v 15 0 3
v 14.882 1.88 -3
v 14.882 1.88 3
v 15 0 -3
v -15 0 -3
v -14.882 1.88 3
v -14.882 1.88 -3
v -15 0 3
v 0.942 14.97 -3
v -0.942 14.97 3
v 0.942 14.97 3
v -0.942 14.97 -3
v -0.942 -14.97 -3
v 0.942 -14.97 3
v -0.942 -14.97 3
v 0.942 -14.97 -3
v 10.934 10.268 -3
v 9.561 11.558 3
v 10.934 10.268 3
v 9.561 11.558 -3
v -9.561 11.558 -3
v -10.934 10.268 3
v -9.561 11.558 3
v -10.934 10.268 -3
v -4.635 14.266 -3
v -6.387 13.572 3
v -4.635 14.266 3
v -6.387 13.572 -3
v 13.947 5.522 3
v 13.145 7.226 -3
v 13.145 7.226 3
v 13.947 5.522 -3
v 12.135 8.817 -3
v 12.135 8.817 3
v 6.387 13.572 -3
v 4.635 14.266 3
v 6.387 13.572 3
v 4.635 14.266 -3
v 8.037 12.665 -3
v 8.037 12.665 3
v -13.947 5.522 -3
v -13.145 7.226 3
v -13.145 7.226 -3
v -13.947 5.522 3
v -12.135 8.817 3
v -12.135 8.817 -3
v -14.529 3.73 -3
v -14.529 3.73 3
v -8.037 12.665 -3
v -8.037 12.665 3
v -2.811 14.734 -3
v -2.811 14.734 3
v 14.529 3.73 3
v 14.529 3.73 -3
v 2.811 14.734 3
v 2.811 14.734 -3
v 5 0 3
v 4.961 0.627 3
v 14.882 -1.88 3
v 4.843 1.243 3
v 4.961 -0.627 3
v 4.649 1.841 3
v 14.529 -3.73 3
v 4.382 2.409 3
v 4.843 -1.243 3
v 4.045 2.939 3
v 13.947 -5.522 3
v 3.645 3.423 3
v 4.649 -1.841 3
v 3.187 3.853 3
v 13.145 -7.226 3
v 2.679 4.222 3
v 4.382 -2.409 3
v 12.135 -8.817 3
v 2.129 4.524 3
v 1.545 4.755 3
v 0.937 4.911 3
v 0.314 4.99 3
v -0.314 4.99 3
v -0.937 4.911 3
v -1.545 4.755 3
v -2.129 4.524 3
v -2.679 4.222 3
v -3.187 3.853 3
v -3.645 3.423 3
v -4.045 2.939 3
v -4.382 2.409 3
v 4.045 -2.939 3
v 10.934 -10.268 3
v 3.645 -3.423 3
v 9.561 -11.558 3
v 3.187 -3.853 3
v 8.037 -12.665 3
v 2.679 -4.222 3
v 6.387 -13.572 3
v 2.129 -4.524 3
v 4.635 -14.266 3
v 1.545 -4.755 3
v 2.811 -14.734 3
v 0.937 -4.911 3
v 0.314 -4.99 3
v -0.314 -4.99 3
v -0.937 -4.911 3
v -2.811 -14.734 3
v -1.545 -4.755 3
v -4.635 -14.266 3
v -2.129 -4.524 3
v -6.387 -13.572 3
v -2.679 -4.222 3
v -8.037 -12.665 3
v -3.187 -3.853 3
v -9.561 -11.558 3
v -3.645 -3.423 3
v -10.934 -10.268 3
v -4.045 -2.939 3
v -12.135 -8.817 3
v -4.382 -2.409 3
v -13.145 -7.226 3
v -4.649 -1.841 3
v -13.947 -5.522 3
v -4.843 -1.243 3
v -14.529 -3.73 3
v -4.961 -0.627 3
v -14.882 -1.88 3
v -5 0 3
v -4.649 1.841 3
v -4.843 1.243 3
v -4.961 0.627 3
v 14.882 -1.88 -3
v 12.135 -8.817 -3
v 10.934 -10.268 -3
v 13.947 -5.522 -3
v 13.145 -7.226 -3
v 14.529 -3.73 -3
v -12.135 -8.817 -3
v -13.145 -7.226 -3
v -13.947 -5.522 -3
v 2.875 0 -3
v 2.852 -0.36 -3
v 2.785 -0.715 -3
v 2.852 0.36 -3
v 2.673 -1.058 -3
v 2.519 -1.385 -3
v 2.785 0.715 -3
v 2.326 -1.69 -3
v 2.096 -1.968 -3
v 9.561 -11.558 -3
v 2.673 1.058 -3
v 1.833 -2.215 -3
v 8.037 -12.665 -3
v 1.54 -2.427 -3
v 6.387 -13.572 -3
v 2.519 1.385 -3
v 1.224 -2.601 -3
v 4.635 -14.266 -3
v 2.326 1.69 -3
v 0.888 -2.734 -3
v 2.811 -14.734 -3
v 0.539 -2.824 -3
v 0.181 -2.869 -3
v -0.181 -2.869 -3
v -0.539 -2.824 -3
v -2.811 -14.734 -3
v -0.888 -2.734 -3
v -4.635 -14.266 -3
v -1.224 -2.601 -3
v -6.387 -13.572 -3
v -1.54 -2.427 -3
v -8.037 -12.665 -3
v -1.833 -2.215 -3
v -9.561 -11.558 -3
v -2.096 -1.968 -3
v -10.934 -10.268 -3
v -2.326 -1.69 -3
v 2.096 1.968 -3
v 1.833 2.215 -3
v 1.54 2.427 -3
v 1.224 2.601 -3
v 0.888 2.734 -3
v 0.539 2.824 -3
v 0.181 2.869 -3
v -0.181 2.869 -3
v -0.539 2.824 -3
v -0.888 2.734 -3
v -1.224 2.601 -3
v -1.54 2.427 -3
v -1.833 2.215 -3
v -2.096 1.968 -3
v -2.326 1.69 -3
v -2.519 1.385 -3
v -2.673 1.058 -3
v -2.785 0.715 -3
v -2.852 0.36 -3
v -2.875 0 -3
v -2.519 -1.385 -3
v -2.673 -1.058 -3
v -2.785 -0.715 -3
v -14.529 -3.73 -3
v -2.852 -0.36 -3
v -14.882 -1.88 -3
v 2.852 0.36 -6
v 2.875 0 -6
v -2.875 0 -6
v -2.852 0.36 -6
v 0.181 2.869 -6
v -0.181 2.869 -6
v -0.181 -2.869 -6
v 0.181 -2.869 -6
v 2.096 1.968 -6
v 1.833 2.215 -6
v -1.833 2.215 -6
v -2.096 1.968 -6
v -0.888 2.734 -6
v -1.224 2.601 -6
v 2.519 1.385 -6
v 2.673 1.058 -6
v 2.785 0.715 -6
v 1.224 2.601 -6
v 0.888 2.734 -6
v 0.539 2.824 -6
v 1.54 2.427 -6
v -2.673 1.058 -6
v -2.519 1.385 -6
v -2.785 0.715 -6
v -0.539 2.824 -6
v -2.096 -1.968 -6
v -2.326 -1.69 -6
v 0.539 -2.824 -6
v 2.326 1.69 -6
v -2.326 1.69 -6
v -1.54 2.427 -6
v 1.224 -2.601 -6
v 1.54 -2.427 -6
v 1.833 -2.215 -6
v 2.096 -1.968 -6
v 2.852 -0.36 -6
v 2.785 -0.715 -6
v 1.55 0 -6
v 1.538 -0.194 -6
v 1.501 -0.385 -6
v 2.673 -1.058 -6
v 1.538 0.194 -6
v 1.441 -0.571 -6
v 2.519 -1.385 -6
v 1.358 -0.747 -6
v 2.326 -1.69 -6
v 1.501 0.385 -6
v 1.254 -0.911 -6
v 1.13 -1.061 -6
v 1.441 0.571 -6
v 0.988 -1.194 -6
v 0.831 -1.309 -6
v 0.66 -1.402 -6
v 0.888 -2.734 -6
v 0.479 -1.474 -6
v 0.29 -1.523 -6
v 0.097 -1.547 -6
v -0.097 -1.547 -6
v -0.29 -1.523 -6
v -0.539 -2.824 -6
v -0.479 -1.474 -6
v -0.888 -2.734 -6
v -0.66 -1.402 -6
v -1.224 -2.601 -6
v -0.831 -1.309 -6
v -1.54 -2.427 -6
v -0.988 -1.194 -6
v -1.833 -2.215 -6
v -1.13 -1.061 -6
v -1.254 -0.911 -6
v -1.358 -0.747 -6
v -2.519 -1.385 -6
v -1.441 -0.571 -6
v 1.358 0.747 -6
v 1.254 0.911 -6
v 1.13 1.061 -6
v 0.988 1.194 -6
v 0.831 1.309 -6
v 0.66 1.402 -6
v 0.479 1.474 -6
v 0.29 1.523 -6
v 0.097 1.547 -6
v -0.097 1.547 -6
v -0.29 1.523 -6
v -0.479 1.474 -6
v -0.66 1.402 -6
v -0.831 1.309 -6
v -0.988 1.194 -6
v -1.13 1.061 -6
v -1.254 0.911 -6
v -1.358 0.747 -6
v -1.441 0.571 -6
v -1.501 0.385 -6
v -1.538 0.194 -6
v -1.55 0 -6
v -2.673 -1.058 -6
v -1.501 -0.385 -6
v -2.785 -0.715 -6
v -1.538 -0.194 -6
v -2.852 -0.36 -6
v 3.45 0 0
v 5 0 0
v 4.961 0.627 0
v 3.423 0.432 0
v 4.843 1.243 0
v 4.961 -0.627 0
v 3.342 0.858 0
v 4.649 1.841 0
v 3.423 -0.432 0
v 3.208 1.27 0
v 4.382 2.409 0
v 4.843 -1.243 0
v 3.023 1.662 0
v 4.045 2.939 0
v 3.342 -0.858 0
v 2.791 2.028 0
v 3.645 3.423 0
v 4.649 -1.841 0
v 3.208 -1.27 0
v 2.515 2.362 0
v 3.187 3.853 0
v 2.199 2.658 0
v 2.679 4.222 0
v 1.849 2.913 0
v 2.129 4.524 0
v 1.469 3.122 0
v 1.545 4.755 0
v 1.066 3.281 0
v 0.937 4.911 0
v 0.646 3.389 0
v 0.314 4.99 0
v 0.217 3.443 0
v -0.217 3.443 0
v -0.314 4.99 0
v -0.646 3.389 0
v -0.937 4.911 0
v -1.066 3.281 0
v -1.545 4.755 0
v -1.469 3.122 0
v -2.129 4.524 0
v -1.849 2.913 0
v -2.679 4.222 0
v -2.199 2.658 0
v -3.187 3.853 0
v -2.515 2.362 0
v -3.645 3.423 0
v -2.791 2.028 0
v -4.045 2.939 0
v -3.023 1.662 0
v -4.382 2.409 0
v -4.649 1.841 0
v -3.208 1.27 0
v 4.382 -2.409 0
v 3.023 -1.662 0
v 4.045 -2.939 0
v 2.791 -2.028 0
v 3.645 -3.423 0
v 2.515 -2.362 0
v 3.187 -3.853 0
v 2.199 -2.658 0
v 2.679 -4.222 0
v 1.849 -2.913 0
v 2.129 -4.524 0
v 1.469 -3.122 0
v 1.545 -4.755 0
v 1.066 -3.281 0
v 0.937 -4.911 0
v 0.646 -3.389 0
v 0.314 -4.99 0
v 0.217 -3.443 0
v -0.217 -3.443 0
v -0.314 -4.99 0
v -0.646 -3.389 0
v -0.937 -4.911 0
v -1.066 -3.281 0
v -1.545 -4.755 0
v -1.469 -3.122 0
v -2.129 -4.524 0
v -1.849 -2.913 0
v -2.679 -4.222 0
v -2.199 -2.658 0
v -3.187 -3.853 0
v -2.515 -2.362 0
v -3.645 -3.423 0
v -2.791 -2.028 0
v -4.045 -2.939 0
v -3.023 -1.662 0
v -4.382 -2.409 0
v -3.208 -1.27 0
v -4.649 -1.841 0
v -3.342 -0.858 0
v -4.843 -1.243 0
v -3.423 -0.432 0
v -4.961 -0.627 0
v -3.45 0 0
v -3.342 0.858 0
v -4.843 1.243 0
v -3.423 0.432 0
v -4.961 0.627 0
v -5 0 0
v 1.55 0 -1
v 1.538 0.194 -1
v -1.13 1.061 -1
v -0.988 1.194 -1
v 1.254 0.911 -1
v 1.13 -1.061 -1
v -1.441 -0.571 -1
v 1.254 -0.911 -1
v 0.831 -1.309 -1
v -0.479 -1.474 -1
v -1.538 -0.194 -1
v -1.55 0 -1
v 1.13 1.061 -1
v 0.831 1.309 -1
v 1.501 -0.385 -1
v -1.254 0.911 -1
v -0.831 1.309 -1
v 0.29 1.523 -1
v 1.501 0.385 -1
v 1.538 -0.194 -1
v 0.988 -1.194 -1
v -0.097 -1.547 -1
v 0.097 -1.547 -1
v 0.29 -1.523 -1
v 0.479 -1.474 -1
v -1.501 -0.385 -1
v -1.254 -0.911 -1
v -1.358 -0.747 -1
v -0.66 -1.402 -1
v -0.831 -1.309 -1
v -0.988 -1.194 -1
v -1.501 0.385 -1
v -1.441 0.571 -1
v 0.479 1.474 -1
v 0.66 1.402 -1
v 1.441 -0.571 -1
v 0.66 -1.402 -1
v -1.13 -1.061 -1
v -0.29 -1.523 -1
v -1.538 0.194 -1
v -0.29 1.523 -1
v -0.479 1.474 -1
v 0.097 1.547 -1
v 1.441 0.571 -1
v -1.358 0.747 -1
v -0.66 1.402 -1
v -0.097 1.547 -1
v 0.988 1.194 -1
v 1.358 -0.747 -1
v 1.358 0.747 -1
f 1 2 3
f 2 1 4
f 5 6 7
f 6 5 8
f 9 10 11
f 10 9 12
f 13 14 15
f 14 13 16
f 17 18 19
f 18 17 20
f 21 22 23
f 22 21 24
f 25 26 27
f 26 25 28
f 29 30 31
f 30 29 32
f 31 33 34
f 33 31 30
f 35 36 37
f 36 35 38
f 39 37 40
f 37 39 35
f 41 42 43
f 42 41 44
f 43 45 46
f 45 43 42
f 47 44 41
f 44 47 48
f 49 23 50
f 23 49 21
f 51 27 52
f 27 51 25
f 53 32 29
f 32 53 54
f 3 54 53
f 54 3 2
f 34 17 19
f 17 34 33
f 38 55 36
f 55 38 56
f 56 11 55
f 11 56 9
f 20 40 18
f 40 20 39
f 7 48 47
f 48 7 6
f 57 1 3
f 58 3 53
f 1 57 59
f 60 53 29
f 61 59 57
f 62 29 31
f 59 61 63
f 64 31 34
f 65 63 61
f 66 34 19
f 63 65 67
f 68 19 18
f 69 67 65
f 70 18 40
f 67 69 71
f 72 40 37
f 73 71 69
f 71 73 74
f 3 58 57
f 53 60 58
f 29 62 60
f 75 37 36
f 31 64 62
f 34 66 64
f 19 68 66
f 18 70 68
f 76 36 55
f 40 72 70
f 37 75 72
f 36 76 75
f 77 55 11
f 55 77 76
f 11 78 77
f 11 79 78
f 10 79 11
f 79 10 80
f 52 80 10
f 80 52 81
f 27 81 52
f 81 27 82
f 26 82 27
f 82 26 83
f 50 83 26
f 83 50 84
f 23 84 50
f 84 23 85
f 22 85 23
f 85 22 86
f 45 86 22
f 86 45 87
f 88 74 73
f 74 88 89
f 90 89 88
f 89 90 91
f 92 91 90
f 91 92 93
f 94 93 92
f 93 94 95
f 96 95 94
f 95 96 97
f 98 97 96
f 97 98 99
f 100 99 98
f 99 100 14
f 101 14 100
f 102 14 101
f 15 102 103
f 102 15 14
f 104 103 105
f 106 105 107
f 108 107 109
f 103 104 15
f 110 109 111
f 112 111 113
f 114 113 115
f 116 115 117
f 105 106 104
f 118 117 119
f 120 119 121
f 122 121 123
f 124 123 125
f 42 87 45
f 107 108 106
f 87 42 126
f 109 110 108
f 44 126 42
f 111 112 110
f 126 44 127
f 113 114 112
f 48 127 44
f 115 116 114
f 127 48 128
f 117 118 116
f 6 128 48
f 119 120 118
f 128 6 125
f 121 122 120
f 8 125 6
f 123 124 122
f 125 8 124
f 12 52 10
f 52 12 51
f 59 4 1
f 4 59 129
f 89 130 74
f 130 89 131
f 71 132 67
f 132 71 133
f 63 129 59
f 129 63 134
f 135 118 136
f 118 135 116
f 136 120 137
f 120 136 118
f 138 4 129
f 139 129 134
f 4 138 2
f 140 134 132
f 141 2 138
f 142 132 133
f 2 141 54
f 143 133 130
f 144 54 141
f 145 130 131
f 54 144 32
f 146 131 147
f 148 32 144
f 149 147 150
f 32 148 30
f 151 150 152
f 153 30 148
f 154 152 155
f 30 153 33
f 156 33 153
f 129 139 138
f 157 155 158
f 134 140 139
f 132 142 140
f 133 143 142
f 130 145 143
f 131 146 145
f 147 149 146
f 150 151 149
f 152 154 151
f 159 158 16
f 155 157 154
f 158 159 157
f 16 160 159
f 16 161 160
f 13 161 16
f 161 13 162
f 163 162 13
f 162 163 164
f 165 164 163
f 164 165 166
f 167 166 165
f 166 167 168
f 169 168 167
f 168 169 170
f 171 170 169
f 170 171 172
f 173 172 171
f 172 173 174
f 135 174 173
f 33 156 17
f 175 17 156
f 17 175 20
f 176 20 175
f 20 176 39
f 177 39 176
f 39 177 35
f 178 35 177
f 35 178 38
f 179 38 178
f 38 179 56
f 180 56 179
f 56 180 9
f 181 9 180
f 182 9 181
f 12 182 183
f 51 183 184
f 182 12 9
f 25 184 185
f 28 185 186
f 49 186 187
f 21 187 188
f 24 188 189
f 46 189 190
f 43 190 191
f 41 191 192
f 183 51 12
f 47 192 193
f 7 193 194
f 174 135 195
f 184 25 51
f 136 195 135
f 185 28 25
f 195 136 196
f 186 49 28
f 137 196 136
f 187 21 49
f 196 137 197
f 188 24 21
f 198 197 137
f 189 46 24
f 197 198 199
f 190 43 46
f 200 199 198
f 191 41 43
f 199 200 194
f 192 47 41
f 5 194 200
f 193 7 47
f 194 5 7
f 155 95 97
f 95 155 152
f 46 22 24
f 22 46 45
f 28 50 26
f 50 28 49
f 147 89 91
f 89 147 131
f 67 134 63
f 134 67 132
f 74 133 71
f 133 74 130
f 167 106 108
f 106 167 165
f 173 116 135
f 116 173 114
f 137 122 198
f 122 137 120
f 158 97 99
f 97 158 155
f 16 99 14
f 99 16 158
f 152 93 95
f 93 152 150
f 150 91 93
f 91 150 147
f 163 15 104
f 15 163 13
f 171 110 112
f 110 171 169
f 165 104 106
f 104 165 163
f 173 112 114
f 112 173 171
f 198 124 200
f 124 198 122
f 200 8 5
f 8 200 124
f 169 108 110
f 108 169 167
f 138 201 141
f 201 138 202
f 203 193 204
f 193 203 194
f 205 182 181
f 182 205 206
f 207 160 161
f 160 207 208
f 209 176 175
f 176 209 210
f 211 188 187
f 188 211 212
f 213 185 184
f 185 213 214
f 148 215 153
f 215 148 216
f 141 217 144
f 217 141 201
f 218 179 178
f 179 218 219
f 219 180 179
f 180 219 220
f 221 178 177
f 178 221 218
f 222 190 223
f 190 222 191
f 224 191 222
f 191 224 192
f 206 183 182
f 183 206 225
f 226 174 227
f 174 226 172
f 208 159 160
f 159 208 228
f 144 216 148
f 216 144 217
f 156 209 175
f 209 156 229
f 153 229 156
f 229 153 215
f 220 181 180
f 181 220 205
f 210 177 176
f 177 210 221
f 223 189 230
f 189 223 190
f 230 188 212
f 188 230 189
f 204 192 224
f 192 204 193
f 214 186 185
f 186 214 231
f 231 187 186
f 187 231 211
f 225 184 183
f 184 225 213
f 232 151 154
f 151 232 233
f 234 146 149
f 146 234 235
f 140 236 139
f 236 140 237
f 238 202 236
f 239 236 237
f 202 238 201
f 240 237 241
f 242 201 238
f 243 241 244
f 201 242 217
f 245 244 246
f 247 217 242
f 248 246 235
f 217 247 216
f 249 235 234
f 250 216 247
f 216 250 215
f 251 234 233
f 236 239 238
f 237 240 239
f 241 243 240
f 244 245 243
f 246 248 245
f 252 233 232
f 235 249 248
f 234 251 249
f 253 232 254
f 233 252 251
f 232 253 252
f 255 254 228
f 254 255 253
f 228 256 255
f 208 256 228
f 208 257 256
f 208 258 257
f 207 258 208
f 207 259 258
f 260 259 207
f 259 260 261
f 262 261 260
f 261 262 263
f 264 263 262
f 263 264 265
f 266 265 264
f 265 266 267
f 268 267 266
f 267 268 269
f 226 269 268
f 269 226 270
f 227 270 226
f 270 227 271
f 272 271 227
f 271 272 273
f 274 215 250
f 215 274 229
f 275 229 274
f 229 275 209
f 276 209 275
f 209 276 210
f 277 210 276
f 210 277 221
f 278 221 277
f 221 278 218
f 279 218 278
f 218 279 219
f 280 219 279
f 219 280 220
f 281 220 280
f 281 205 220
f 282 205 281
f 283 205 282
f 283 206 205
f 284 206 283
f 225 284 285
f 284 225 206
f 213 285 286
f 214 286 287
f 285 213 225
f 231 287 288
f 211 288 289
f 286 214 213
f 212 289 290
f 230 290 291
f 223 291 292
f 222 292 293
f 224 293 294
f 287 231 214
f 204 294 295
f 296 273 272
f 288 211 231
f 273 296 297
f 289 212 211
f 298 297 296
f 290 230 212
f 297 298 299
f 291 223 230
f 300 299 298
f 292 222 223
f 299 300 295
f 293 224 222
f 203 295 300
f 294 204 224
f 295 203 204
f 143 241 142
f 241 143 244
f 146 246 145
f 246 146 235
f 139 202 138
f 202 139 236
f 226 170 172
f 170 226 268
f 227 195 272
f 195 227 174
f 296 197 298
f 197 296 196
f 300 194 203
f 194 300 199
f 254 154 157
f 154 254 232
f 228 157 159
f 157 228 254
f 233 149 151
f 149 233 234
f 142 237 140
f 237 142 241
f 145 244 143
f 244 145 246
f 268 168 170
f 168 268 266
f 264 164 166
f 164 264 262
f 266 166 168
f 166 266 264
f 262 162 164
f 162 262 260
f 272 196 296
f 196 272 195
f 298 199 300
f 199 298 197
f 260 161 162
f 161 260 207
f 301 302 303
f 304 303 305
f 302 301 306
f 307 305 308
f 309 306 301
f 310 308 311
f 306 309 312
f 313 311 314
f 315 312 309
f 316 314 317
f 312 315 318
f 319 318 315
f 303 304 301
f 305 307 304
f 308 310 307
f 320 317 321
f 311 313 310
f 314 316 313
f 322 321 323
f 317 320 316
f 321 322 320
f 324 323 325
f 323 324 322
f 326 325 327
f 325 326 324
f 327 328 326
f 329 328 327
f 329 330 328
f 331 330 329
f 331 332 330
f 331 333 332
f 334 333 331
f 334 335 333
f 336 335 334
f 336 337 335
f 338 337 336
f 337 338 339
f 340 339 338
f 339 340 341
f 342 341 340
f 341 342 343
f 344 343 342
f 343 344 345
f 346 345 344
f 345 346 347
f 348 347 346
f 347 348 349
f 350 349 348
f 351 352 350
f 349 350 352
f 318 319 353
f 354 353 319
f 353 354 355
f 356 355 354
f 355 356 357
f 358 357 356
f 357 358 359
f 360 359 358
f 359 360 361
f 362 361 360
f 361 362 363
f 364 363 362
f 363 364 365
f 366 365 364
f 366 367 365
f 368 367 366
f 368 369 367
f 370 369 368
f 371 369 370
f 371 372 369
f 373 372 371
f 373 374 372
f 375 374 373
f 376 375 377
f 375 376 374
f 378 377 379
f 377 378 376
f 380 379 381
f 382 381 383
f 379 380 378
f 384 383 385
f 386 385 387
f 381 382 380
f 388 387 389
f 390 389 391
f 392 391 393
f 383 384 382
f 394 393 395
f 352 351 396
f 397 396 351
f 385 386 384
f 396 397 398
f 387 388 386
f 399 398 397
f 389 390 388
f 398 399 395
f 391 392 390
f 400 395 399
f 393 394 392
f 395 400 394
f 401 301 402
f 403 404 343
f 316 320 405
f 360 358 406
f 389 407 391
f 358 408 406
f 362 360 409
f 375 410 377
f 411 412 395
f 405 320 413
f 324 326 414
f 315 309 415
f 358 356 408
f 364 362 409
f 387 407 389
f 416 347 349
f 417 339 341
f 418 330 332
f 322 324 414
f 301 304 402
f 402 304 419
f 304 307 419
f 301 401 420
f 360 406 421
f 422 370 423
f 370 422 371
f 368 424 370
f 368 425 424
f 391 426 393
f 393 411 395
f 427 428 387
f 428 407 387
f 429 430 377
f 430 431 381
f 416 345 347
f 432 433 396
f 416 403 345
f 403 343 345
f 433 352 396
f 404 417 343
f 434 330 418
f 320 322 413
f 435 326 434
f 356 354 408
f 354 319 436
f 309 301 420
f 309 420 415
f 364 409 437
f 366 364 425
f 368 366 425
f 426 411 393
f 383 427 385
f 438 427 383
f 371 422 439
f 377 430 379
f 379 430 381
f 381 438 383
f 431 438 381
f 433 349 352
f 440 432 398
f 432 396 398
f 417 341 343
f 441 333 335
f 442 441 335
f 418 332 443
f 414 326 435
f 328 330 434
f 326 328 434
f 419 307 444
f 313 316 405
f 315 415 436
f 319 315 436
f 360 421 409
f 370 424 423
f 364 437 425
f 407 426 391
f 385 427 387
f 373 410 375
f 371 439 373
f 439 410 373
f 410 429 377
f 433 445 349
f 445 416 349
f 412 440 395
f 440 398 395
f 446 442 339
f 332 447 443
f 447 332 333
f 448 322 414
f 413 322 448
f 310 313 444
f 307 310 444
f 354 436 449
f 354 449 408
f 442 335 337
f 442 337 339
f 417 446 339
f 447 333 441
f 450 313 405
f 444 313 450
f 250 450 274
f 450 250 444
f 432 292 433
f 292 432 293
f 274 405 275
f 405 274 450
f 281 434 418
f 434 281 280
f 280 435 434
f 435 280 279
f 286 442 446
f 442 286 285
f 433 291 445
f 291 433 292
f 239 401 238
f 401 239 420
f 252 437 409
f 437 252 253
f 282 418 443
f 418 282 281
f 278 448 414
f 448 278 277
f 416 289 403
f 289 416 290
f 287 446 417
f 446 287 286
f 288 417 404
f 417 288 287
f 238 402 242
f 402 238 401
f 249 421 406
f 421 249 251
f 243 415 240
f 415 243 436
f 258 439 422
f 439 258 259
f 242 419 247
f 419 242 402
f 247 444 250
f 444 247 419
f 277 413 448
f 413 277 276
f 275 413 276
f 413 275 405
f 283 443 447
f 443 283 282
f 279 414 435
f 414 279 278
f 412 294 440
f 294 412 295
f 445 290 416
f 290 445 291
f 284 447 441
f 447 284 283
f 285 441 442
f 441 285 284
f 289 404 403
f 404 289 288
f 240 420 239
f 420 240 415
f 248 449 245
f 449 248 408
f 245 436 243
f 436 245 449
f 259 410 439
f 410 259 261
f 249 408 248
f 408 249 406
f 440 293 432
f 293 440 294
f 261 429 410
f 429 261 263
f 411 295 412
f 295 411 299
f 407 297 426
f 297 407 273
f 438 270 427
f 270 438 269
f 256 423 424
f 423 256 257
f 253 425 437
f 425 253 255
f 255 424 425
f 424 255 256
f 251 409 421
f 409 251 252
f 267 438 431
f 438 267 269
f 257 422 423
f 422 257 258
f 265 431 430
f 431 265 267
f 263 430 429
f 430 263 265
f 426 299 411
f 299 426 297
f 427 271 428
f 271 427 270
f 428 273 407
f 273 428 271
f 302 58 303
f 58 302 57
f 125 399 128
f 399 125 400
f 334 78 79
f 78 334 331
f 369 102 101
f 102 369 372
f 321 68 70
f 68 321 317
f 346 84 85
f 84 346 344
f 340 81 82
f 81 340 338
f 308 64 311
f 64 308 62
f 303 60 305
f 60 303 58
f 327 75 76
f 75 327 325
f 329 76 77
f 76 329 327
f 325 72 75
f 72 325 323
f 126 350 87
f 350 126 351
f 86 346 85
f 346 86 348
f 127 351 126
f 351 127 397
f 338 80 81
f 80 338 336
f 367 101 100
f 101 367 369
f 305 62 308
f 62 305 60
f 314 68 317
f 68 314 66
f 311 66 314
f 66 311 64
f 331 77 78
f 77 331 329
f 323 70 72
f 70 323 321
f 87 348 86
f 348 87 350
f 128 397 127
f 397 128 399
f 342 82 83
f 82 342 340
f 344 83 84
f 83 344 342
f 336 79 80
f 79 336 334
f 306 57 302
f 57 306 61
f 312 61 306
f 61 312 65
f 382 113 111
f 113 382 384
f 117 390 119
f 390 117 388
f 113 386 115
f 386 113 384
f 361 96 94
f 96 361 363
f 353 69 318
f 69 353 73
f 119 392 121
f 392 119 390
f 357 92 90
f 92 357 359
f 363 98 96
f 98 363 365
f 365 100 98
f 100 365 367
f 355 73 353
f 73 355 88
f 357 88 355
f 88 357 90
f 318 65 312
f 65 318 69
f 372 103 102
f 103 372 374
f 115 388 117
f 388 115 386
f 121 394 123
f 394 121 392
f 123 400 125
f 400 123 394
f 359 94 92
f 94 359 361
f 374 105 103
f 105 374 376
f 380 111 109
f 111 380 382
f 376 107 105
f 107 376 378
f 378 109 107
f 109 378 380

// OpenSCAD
$fn = 50;

difference() {
	union() {
		translate(v = [0, 0, -3.0]) {
			cylinder(h = 6, r = 15.0);
		}
		#translate(v = [0, 0, -6.0]) {
			cylinder(h = 6, r = 2.875);
		}
	}
	union() {
		translate(v = [0, 0, 0]) {
			rotate(a = [0, 0, 0]) {
				difference() {
					union() {
						translate(v = [0, 0, -6.0]) {
							cylinder(h = 6, r = 1.25);
						}
						translate(v = [0, 0, -1.0]) {
							cylinder(h = 1.0, r1 = 1.55, r2 = 3.45);
						}
						translate(v = [0, 0, -6.0]) {
							cylinder(h = 6, r = 1.55);
						}
						translate(v = [0, 0, -6.0]) {
							cylinder(h = 6, r = 1.25);
						}
					}
					union();
				}
			}
		}
		#cylinder(h = 3, r = 5.0);
	}
}
